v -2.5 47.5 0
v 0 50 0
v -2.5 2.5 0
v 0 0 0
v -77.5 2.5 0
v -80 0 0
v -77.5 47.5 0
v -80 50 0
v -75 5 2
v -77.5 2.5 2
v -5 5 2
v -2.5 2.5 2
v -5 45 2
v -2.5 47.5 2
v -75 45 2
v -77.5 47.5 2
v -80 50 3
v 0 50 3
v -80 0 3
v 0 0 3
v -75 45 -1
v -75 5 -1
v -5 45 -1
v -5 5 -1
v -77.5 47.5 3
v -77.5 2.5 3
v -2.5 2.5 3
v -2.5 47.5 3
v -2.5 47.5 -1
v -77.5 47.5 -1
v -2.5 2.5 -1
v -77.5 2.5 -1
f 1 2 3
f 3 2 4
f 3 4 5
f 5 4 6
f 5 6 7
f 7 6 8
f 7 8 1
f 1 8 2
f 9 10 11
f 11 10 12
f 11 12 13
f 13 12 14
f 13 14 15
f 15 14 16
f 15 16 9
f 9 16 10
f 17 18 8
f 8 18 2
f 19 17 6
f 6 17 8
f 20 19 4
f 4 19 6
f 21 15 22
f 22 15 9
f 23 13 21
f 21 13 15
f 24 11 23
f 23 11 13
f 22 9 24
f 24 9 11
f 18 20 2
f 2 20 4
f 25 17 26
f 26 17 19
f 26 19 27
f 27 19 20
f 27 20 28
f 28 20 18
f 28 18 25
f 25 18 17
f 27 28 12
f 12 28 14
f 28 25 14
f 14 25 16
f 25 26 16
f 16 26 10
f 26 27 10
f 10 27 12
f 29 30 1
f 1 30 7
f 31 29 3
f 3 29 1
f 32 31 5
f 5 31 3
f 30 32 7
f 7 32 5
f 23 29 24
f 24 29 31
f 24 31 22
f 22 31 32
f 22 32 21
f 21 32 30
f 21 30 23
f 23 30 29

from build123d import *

# Parameters (mm, degrees)
SKETCH_1_W      = 80
SKETCH_1_H      = 50
SKETCH_1_W_2    = 75
SKETCH_1_H_2    = 45
SKETCH_1_W_3    = 70
SKETCH_1_H_3    = 40
EXTRUDE_1_DEPTH = 2
SKETCH_2_W      = 80
SKETCH_2_H      = 50
SKETCH_2_W_2    = 75
SKETCH_2_H_2    = 45
EXTRUDE_2_DEPTH = 1
SKETCH_3_W      = 75
SKETCH_3_H      = 45
SKETCH_3_W_2    = 70
SKETCH_3_H_2    = 40
EXTRUDE_3_DEPTH = 1


with BuildPart() as part:
    # 스케치1 → 보스-돌출1 (new body)
    # profile 1 of 2: a face of its own
    with BuildSketch(Plane.XY):
        with Locations((-40, 25)):
            Rectangle(SKETCH_1_W, SKETCH_1_H)
        with Locations((-40, 25)):
            Rectangle(SKETCH_1_W_2, SKETCH_1_H_2, mode=Mode.SUBTRACT)
    # profile 2 of 2: a face of its own
    with BuildSketch(Plane.XY):
        with Locations((-40, 25)):
            Rectangle(SKETCH_1_W_2, SKETCH_1_H_2)
        with Locations((-40, 25)):
            Rectangle(SKETCH_1_W_3, SKETCH_1_H_3, mode=Mode.SUBTRACT)
    extrude(amount=EXTRUDE_1_DEPTH)

    # 스케치2 → 보스-돌출2 (add)
    with BuildSketch(Plane.XY.offset(2)):
        with Locations((-40, 25)):
            Rectangle(SKETCH_2_W, SKETCH_2_H)
        with Locations((-40, 25)):
            Rectangle(SKETCH_2_W_2, SKETCH_2_H_2, mode=Mode.SUBTRACT)
    extrude(amount=EXTRUDE_2_DEPTH)

    # 스케치3 → 보스-돌출3 (add)
    with BuildSketch(Plane(origin=(0, 0, 0), x_dir=(-1, 0, 0), z_dir=(0, 0, -1))):
        with Locations((40, 25)):
            Rectangle(SKETCH_3_W, SKETCH_3_H)
        with Locations((40, 25)):
            Rectangle(SKETCH_3_W_2, SKETCH_3_H_2, mode=Mode.SUBTRACT)
    extrude(amount=EXTRUDE_3_DEPTH)


solid = part.part
